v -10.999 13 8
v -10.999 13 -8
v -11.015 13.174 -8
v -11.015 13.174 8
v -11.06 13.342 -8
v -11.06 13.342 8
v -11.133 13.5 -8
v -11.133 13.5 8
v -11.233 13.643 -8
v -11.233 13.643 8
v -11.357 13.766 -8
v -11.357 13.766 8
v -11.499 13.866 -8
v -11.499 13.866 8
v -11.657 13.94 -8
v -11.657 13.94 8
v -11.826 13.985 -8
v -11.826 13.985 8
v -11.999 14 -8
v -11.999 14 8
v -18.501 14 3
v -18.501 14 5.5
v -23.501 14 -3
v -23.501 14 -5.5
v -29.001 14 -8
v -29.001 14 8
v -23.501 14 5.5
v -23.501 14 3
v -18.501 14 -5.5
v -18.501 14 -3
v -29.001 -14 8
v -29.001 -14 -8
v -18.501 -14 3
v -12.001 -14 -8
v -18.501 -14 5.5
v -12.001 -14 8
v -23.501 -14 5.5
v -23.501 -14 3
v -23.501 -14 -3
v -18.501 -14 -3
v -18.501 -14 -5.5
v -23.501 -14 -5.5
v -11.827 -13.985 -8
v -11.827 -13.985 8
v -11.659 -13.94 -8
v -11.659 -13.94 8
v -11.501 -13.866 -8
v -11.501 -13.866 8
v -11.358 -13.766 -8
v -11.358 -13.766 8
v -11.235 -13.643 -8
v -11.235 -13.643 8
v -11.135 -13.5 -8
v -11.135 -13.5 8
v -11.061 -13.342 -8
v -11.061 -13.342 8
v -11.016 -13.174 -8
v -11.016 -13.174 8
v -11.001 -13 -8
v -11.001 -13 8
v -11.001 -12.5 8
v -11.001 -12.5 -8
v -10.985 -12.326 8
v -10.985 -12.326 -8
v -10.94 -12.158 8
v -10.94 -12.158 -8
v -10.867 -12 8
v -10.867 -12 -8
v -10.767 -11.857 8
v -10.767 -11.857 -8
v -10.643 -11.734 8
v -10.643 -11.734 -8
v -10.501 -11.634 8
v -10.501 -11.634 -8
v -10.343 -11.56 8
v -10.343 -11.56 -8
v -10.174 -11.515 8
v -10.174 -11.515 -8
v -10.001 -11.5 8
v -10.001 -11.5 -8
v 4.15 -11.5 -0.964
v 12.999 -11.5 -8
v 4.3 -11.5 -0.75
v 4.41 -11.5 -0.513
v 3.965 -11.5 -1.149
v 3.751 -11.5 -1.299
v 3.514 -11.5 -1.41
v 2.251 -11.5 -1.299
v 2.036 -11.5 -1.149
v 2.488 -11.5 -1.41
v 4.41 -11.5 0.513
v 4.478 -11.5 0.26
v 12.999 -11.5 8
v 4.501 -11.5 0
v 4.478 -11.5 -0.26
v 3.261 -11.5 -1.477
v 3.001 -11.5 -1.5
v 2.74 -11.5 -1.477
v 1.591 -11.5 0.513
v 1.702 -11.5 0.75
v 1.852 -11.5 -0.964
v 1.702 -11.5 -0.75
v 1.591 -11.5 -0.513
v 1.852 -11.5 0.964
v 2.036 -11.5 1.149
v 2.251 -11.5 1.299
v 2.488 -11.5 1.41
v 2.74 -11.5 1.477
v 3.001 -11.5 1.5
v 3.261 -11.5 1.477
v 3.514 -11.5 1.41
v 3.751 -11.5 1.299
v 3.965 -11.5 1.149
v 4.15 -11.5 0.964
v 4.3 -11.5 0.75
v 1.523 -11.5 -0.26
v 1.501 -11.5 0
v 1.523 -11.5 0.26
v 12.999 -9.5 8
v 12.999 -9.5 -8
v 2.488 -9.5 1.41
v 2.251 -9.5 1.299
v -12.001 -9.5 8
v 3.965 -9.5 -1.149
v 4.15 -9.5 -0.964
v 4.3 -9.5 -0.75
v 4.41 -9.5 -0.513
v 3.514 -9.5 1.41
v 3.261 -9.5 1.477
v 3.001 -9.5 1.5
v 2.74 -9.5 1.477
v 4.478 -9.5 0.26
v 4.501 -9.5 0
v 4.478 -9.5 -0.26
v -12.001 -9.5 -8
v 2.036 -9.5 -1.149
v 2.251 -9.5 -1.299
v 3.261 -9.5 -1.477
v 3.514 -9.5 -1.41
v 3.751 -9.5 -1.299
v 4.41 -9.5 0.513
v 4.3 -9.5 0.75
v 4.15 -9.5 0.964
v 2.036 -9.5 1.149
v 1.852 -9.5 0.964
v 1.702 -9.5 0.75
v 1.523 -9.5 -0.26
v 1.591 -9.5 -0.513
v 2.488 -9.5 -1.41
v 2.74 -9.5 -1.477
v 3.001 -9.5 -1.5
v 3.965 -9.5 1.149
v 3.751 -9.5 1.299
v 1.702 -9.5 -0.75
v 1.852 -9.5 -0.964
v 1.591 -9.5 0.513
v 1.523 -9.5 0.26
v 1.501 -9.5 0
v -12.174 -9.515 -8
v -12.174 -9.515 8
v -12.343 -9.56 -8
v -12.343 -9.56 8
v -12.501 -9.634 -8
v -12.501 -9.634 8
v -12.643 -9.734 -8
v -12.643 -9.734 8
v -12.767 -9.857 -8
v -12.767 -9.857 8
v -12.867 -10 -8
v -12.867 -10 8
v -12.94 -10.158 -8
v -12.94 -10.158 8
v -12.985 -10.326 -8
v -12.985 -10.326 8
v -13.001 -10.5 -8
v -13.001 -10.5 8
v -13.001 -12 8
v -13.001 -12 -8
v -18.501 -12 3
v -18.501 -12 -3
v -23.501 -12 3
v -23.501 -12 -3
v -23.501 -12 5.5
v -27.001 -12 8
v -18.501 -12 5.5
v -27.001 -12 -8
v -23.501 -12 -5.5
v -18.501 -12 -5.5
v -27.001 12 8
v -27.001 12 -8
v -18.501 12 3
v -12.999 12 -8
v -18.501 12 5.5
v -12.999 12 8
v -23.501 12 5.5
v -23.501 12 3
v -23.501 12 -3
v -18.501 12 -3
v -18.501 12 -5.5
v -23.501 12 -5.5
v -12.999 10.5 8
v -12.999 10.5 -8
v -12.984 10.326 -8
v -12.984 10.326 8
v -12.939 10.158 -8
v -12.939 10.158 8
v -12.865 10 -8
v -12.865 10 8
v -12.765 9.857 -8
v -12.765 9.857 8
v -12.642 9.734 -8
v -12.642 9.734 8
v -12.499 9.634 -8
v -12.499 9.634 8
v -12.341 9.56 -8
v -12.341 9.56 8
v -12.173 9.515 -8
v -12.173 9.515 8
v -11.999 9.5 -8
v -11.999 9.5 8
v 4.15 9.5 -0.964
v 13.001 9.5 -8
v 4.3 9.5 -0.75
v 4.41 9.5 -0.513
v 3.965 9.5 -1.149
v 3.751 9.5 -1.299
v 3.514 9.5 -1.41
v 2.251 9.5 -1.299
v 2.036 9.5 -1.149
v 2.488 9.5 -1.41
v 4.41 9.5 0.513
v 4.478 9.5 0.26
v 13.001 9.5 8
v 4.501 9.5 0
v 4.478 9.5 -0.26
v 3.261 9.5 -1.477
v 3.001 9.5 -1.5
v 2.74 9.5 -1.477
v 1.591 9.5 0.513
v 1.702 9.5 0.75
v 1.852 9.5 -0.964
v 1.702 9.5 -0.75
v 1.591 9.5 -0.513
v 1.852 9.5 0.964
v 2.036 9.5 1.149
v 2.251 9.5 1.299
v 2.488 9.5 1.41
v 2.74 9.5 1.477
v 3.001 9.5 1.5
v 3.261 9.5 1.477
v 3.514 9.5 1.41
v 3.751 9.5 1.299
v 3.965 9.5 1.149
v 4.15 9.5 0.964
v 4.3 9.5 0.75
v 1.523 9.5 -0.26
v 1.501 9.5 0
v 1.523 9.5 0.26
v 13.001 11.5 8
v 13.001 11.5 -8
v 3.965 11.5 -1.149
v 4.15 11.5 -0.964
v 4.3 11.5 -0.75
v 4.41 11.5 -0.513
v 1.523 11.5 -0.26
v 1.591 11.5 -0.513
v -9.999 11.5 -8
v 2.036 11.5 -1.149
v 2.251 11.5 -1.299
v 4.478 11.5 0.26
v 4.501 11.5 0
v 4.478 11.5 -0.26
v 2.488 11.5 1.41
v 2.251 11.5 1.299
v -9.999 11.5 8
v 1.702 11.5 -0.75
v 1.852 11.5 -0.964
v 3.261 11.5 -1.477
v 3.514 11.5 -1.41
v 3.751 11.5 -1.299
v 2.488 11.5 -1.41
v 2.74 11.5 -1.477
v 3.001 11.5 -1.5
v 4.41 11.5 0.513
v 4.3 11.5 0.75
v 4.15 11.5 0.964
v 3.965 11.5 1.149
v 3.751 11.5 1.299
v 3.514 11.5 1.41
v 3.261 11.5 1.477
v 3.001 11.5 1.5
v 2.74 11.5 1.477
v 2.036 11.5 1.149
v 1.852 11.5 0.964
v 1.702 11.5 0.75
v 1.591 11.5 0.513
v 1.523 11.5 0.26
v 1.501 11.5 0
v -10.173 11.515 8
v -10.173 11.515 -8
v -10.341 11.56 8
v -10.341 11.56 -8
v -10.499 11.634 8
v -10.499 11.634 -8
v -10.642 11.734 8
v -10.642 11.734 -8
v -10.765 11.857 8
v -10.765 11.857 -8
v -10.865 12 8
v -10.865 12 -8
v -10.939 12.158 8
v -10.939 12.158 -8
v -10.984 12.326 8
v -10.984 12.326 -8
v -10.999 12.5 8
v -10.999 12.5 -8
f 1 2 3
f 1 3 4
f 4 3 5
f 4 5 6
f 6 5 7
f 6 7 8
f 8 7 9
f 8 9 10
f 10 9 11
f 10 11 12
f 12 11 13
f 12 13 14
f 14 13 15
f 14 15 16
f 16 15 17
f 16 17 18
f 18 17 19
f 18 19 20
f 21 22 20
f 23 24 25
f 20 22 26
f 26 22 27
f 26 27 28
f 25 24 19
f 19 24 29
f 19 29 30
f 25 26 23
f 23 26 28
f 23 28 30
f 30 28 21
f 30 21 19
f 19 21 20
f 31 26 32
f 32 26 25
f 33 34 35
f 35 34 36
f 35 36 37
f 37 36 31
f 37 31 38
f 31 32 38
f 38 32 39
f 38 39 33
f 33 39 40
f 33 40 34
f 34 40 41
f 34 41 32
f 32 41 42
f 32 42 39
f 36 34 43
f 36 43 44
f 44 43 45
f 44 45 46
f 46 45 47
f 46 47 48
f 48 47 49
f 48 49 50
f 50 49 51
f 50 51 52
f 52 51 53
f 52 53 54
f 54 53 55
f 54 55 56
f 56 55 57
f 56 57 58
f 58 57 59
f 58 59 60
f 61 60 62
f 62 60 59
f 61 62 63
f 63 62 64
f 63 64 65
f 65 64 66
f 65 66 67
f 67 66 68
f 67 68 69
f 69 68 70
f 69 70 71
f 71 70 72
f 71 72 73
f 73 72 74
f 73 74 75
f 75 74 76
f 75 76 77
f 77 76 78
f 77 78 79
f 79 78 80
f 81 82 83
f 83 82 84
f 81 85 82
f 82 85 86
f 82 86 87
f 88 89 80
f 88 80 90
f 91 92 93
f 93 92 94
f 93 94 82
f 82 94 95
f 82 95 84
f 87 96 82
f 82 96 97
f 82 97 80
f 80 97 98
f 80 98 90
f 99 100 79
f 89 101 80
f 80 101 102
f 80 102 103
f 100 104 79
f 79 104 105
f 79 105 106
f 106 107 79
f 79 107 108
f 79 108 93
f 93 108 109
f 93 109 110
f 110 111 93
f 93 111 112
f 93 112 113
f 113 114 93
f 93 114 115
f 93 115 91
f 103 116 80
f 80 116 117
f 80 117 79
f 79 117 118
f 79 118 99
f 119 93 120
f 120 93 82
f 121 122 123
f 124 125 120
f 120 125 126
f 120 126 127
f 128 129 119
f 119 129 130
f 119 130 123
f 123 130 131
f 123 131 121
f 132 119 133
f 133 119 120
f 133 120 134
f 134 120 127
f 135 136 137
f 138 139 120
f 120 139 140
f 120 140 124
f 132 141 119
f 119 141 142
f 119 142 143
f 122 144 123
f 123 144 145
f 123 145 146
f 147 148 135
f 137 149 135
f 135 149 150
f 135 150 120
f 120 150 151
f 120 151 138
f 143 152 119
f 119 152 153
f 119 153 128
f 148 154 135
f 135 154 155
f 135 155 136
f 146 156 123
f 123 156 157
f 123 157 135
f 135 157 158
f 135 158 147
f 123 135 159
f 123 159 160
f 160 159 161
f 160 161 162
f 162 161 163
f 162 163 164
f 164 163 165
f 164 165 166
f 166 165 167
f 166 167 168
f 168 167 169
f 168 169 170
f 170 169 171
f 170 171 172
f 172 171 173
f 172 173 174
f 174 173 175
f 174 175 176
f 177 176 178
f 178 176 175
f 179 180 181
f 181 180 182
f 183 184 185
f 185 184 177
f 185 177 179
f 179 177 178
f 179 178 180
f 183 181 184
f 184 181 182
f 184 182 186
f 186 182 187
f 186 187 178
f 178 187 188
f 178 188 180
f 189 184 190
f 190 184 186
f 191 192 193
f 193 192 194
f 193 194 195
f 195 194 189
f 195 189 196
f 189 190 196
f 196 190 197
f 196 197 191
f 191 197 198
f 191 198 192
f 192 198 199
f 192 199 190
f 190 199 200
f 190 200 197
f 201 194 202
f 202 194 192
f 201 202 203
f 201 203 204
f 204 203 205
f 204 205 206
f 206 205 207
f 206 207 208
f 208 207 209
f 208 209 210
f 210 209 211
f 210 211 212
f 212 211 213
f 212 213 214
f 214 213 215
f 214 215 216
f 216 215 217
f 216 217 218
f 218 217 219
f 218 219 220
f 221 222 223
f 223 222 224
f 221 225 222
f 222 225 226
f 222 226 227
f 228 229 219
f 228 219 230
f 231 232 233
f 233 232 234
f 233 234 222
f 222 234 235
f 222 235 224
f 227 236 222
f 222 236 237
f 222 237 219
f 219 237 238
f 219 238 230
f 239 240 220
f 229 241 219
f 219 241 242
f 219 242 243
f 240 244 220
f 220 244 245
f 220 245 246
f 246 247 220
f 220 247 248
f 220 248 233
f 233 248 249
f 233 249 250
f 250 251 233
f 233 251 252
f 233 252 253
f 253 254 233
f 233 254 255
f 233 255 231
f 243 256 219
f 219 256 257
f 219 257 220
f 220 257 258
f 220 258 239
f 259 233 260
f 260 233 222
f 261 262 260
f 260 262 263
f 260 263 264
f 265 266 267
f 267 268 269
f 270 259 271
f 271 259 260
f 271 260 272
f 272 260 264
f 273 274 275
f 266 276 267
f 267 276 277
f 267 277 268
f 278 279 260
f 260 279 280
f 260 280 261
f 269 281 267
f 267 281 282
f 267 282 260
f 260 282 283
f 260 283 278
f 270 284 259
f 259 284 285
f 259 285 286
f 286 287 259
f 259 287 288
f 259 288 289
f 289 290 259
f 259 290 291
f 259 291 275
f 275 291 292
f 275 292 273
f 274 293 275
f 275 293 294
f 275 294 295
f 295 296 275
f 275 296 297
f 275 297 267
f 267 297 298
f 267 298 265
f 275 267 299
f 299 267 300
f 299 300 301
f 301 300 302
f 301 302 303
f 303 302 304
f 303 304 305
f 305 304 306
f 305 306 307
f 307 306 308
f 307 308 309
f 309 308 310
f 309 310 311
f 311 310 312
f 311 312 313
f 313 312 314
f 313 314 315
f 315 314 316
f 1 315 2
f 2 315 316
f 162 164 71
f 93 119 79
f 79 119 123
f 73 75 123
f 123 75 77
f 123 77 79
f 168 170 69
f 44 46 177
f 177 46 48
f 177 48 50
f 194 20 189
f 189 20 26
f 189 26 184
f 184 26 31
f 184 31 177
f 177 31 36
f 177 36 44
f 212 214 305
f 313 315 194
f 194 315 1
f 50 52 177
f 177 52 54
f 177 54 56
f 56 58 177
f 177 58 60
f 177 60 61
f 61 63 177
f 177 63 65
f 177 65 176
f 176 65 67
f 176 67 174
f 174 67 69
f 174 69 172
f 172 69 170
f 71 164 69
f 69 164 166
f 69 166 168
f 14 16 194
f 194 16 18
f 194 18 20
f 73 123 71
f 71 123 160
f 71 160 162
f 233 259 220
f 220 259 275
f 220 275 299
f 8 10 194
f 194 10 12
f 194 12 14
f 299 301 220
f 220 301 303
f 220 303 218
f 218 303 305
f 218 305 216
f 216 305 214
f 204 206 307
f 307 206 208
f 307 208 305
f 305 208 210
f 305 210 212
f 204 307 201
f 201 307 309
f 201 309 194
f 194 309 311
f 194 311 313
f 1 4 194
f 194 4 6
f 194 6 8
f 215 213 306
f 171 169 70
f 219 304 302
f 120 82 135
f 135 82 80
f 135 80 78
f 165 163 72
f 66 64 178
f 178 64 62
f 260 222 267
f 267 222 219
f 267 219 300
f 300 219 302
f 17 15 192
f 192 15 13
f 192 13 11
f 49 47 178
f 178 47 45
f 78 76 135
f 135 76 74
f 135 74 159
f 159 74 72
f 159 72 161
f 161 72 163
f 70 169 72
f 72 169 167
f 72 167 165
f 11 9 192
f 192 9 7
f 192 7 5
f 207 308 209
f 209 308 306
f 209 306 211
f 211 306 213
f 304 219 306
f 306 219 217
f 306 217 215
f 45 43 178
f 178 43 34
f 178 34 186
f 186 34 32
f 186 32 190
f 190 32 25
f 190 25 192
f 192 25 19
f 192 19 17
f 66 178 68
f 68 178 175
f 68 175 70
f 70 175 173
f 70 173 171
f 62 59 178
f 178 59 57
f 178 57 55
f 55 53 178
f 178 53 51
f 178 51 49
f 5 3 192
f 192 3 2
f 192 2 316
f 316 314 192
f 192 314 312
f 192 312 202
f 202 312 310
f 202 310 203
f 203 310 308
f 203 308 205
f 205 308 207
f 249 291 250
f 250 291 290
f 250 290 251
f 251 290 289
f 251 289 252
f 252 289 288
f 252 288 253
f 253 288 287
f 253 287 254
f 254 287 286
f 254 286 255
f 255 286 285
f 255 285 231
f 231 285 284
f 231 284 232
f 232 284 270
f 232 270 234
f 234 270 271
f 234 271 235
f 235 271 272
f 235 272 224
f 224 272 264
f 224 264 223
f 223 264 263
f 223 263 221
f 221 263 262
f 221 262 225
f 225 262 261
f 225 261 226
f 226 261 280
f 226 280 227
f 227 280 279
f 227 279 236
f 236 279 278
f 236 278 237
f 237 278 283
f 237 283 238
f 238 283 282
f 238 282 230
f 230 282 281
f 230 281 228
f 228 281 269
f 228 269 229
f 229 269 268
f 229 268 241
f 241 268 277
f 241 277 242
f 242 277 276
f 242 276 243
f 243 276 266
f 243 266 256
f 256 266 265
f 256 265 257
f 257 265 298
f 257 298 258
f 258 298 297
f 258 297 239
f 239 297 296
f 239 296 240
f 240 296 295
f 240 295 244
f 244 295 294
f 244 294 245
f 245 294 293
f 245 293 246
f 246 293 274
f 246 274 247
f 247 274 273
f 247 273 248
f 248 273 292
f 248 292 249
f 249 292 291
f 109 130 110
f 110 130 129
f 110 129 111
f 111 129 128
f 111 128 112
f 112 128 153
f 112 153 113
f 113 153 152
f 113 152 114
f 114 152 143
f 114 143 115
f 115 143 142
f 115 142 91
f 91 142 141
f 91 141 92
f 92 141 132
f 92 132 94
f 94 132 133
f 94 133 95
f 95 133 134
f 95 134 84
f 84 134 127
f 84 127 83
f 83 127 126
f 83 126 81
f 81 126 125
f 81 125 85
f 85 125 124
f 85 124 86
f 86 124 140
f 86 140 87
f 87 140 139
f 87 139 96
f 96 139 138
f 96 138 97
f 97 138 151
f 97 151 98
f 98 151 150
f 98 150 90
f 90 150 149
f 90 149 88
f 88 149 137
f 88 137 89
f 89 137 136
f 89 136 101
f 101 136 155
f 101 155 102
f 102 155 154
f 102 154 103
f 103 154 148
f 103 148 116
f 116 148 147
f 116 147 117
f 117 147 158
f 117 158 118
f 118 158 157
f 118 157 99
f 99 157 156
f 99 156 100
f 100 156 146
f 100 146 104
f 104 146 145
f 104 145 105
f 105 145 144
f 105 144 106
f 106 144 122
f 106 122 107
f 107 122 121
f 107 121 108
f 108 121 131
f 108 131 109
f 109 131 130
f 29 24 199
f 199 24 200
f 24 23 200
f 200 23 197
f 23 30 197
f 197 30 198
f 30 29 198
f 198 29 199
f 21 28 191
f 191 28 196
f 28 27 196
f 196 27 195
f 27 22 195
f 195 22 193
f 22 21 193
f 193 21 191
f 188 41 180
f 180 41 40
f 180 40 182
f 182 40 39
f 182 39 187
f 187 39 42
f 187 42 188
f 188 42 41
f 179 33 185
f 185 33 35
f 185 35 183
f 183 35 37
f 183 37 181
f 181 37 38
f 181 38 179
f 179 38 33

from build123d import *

# Parameters (mm, degrees)
Y_KSEKLIK_EKSTR_ZYON1_DEPTH = 8
IZIM2_R                     = 1.5
KES_EKSTR_ZYON1_DEPTH       = 18
IZIM3_W                     = 5
IZIM3_H                     = 2.5
KES_EKSTR_ZYON2_DEPTH       = 36


with BuildPart() as part:
    # Çizim1 → Yükseklik-Ekstrüzyon1 (new body, symmetric)
    with BuildSketch(Plane.XY):
        with BuildLine():
            ThreePointArc((-11.99936312, 14), (-11.292256338, 13.707106781), (-10.99936312, 13))
            Line((-10.99936312, 13), (-10.99936312, 12.499999979))
            ThreePointArc((-10.99936312, 12.499999979), (-10.706469901, 11.792893197), (-9.99936312, 11.499999979))
            Line((-9.99936312, 11.499999979), (13.00063688, 11.499999979))
            Line((13.00063688, 11.499999979), (13.00063688, 9.499999979))
            Line((13.00063688, 9.499999979), (-11.99936312, 9.499999979))
            ThreePointArc((-11.99936312, 9.499999979), (-12.706469901, 9.792893197), (-12.99936312, 10.499999979))
            Line((-12.99936312, 10.499999979), (-12.99936312, 12))
            Line((-12.99936312, 12), (-27.00063688, 12))
            Line((-27.00063688, 12), (-27.00063688, -12))
            Line((-27.00063688, -12), (-13.00063688, -12))
            Line((-13.00063688, -12), (-13.00063688, -10.499999979))
            ThreePointArc((-13.00063688, -10.499999979), (-12.707743662, -9.792893197), (-12.00063688, -9.499999979))
            Line((-12.00063688, -9.499999979), (12.99936312, -9.499999979))
            Line((12.99936312, -9.499999979), (12.99936312, -11.499999979))
            Line((12.99936312, -11.499999979), (-10.00063688, -11.499999979))
            ThreePointArc((-10.00063688, -11.499999979), (-10.707743662, -11.792893197), (-11.00063688, -12.499999979))
            Line((-11.00063688, -12.499999979), (-11.00063688, -13))
            ThreePointArc((-11.00063688, -13), (-11.293530099, -13.707106781), (-12.00063688, -14))
            Line((-12.00063688, -14), (-12.86760717, -14))
            Line((-12.86760717, -14), (-29.00063688, -14))
            Line((-29.00063688, -14), (-29.00063688, 14))
            Line((-29.00063688, 14), (-12.99936312, 14))
            Line((-12.99936312, 14), (-11.99936312, 14))
        make_face()
    extrude(amount=Y_KSEKLIK_EKSTR_ZYON1_DEPTH, both=True)

    # Çizim2 → Kes-Ekstrüzyon1 (cut, symmetric)
    with BuildSketch(Plane(origin=(0, 0, 0), x_dir=(1, 0, 0), z_dir=(0, 1, 0))):
        with Locations((3.00063688, 0)):
            Circle(IZIM2_R)
    extrude(amount=KES_EKSTR_ZYON1_DEPTH, both=True, mode=Mode.SUBTRACT)

    # Çizim3 → Kes-Ekstrüzyon2 (cut)
    with BuildSketch(Plane(origin=(0, 14, 0), x_dir=(1, 0, 0), z_dir=(0, 1, 0))):
        with Locations((-21.00063688, -4.25)):
            Rectangle(IZIM3_W, IZIM3_H)
        with Locations((-21.00063688, 4.25)):
            Rectangle(IZIM3_W, IZIM3_H)
    extrude(amount=-KES_EKSTR_ZYON2_DEPTH, mode=Mode.SUBTRACT)


solid = part.part
